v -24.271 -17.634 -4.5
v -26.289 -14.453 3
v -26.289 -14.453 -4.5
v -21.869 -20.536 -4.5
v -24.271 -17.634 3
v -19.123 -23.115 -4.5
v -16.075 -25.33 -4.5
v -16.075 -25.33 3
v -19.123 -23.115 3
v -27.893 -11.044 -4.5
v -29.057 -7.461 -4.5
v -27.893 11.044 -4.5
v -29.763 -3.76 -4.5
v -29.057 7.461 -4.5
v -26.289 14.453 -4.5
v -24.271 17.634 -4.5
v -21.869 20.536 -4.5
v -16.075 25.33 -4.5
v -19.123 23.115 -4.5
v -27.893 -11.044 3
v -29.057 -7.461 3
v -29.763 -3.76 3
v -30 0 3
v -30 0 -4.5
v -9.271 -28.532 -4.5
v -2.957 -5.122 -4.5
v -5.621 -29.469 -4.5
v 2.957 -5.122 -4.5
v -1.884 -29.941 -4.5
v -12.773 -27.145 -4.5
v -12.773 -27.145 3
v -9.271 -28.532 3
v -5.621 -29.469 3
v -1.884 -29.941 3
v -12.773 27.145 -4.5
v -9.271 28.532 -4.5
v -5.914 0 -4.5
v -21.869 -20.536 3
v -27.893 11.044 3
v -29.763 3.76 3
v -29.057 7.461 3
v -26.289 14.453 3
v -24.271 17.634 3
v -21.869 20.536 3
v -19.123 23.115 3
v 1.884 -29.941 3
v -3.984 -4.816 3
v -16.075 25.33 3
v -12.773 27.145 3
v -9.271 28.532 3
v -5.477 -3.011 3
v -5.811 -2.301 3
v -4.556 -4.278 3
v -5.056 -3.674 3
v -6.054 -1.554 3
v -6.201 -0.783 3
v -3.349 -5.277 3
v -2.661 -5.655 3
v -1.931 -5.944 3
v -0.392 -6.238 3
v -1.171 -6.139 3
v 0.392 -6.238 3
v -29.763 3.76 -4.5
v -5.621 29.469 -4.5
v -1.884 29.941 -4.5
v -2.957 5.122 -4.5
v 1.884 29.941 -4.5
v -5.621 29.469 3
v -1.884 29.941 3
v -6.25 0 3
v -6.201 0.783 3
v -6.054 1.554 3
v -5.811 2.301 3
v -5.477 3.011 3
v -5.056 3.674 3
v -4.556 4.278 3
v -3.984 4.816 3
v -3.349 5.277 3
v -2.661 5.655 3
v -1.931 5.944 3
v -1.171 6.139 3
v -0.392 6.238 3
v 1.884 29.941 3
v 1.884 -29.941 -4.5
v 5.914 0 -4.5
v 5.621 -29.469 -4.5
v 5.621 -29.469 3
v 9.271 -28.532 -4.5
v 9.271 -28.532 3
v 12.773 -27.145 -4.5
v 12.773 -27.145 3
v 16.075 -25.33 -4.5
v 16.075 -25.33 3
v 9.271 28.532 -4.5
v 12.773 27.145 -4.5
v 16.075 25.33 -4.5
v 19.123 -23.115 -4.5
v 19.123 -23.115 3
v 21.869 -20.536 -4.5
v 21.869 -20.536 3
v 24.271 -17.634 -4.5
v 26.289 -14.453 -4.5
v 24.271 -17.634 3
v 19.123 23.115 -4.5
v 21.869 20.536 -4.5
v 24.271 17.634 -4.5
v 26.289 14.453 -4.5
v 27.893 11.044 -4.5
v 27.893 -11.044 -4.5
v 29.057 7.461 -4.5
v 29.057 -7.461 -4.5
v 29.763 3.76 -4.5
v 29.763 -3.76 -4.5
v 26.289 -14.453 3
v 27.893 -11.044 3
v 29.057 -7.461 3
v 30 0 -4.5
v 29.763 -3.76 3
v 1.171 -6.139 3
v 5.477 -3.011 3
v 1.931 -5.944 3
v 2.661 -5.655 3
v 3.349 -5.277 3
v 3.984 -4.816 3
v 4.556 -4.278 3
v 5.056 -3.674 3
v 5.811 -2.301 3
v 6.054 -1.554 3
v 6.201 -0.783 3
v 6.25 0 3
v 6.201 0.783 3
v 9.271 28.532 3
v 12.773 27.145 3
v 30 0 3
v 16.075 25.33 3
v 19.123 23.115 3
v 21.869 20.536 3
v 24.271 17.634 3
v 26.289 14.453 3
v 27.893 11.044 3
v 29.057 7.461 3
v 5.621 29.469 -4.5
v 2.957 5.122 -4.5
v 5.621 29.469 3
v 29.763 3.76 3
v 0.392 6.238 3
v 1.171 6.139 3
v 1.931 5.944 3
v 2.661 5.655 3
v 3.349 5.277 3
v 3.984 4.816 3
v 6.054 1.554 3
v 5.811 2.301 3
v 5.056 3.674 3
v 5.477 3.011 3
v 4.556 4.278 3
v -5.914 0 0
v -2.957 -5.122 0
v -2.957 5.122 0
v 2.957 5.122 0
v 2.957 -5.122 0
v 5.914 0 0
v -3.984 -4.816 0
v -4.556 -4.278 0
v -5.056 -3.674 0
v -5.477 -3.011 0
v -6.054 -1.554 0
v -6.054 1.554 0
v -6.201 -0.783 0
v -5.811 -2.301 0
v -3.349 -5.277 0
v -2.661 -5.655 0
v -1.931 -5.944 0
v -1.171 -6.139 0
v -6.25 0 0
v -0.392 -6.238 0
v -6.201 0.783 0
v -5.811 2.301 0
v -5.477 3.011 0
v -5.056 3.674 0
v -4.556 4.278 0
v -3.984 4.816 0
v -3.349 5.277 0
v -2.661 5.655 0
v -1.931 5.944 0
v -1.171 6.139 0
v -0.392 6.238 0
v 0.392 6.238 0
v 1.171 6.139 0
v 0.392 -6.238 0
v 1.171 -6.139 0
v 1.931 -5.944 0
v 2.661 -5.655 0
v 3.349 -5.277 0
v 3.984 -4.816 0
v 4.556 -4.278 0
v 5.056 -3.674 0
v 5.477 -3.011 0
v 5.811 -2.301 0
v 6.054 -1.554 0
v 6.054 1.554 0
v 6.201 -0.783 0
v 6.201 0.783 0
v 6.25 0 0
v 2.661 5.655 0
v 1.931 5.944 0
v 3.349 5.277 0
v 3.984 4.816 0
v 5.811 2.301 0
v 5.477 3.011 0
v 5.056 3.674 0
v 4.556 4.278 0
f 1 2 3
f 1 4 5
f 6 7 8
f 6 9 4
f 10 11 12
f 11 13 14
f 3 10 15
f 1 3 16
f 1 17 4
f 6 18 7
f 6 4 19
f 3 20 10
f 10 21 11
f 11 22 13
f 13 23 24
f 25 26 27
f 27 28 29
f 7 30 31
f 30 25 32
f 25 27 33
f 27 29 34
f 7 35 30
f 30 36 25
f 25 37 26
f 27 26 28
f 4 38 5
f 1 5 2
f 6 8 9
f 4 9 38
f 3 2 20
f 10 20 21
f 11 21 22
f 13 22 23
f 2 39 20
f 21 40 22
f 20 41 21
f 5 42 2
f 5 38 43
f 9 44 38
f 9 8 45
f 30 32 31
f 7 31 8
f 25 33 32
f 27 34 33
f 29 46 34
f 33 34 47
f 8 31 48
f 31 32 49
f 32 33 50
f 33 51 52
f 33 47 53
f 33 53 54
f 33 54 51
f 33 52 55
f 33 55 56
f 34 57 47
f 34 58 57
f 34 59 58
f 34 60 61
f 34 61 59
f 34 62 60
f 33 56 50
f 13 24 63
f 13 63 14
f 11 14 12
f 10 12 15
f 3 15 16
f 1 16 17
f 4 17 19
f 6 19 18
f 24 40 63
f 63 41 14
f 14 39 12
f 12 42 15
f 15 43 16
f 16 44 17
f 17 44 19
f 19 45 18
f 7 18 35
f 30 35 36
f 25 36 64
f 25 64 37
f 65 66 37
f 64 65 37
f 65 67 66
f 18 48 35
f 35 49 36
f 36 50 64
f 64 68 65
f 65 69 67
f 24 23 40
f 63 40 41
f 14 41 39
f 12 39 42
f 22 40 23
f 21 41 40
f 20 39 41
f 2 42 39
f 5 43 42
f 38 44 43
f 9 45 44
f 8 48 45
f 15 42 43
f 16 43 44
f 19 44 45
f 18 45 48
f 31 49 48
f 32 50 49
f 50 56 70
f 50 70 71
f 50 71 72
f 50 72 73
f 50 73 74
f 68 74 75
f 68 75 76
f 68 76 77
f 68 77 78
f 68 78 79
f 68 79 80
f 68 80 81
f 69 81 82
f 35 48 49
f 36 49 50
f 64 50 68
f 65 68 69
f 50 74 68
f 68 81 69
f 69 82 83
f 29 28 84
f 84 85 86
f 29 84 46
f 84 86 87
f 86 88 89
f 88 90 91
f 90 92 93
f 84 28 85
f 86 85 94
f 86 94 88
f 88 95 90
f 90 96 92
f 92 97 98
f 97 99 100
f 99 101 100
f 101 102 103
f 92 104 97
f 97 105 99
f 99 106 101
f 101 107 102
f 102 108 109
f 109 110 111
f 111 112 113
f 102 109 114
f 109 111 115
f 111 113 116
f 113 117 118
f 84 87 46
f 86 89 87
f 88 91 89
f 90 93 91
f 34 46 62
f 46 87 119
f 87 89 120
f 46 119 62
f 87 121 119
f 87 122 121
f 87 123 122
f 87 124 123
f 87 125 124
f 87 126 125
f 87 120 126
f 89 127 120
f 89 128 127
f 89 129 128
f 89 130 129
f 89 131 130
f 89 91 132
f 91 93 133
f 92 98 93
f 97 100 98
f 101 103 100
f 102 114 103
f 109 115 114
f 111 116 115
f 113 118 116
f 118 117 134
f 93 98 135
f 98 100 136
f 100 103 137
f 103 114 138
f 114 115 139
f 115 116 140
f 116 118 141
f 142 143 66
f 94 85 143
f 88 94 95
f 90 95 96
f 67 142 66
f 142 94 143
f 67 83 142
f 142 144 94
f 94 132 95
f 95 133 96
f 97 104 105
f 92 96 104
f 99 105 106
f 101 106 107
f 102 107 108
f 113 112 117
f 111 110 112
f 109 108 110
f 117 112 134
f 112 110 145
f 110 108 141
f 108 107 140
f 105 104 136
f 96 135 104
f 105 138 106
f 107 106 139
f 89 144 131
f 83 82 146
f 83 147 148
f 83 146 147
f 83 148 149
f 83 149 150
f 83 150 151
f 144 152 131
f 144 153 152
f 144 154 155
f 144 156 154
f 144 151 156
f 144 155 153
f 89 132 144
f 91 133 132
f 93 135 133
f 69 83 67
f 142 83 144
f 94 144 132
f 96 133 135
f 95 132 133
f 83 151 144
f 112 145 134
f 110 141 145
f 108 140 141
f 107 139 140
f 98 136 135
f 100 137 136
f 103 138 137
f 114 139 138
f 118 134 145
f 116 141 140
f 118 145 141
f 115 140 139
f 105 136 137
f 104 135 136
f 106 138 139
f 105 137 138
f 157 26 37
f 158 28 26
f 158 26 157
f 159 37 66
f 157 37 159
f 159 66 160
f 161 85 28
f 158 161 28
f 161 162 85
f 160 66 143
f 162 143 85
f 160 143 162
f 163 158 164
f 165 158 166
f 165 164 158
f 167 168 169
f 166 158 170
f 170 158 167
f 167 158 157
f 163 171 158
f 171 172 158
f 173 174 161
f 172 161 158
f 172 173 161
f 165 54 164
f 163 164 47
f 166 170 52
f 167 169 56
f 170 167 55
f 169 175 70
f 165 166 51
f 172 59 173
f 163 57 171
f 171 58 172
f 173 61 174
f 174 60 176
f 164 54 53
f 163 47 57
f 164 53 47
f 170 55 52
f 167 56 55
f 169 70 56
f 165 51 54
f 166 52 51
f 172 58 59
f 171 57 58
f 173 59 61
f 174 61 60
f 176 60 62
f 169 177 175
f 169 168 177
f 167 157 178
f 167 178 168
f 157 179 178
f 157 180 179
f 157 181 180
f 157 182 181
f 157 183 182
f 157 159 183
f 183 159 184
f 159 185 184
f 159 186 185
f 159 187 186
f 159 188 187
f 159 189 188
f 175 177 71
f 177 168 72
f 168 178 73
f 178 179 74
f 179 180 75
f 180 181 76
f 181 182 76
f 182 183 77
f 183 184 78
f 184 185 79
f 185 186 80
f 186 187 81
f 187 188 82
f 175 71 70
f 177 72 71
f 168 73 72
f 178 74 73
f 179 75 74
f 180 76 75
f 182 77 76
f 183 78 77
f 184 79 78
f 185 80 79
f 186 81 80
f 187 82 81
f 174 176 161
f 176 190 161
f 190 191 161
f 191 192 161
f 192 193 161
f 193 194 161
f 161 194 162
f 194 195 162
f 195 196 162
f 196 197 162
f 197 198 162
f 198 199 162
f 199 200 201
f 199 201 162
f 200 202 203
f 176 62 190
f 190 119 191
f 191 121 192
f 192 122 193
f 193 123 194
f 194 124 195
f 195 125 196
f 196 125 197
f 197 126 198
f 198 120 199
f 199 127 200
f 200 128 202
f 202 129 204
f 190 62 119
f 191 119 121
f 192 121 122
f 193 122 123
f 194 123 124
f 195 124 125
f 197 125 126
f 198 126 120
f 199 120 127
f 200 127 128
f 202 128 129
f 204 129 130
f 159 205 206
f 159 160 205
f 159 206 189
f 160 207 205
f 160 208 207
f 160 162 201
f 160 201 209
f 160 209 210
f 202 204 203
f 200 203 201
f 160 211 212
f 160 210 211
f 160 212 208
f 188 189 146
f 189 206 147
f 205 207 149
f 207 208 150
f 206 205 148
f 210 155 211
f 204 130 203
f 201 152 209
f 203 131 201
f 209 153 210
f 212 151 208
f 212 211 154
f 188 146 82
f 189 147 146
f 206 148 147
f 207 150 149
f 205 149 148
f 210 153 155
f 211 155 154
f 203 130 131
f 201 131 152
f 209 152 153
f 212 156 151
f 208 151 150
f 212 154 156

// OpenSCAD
$fn = 50;

difference() {
	union() {
		translate(v = [0, 0, -4.5]) {
			cylinder(h = 7.5, r = 30.0);
		}
		#translate(v = [0, 0, -6.0]) {
			cylinder(h = 6, r = 2.875);
		}
	}
	union() {
		translate(v = [0, 0, 0]) {
			rotate(a = [0, 0, 0]) {
				difference() {
					union() {
						translate(v = [0, 0, -5]) {
							linear_extrude(height = 5) {
								polygon(points = [[5.914249999999999, 0.0], [2.957125, 5.1218907443321156], [-2.9571249999999982, 5.1218907443321156], [-5.914249999999999, 7.242867331857232e-16], [-2.9571250000000022, -5.121890744332115], [2.9571249999999956, -5.121890744332118]]);
							}
						}
					}
					union();
				}
			}
		}
		#cylinder(h = 3, r = 6.25);
		#translate(v = [0, 0, -100.0]) {
			cylinder(h = 200, r = 3.25);
		}
	}
}
